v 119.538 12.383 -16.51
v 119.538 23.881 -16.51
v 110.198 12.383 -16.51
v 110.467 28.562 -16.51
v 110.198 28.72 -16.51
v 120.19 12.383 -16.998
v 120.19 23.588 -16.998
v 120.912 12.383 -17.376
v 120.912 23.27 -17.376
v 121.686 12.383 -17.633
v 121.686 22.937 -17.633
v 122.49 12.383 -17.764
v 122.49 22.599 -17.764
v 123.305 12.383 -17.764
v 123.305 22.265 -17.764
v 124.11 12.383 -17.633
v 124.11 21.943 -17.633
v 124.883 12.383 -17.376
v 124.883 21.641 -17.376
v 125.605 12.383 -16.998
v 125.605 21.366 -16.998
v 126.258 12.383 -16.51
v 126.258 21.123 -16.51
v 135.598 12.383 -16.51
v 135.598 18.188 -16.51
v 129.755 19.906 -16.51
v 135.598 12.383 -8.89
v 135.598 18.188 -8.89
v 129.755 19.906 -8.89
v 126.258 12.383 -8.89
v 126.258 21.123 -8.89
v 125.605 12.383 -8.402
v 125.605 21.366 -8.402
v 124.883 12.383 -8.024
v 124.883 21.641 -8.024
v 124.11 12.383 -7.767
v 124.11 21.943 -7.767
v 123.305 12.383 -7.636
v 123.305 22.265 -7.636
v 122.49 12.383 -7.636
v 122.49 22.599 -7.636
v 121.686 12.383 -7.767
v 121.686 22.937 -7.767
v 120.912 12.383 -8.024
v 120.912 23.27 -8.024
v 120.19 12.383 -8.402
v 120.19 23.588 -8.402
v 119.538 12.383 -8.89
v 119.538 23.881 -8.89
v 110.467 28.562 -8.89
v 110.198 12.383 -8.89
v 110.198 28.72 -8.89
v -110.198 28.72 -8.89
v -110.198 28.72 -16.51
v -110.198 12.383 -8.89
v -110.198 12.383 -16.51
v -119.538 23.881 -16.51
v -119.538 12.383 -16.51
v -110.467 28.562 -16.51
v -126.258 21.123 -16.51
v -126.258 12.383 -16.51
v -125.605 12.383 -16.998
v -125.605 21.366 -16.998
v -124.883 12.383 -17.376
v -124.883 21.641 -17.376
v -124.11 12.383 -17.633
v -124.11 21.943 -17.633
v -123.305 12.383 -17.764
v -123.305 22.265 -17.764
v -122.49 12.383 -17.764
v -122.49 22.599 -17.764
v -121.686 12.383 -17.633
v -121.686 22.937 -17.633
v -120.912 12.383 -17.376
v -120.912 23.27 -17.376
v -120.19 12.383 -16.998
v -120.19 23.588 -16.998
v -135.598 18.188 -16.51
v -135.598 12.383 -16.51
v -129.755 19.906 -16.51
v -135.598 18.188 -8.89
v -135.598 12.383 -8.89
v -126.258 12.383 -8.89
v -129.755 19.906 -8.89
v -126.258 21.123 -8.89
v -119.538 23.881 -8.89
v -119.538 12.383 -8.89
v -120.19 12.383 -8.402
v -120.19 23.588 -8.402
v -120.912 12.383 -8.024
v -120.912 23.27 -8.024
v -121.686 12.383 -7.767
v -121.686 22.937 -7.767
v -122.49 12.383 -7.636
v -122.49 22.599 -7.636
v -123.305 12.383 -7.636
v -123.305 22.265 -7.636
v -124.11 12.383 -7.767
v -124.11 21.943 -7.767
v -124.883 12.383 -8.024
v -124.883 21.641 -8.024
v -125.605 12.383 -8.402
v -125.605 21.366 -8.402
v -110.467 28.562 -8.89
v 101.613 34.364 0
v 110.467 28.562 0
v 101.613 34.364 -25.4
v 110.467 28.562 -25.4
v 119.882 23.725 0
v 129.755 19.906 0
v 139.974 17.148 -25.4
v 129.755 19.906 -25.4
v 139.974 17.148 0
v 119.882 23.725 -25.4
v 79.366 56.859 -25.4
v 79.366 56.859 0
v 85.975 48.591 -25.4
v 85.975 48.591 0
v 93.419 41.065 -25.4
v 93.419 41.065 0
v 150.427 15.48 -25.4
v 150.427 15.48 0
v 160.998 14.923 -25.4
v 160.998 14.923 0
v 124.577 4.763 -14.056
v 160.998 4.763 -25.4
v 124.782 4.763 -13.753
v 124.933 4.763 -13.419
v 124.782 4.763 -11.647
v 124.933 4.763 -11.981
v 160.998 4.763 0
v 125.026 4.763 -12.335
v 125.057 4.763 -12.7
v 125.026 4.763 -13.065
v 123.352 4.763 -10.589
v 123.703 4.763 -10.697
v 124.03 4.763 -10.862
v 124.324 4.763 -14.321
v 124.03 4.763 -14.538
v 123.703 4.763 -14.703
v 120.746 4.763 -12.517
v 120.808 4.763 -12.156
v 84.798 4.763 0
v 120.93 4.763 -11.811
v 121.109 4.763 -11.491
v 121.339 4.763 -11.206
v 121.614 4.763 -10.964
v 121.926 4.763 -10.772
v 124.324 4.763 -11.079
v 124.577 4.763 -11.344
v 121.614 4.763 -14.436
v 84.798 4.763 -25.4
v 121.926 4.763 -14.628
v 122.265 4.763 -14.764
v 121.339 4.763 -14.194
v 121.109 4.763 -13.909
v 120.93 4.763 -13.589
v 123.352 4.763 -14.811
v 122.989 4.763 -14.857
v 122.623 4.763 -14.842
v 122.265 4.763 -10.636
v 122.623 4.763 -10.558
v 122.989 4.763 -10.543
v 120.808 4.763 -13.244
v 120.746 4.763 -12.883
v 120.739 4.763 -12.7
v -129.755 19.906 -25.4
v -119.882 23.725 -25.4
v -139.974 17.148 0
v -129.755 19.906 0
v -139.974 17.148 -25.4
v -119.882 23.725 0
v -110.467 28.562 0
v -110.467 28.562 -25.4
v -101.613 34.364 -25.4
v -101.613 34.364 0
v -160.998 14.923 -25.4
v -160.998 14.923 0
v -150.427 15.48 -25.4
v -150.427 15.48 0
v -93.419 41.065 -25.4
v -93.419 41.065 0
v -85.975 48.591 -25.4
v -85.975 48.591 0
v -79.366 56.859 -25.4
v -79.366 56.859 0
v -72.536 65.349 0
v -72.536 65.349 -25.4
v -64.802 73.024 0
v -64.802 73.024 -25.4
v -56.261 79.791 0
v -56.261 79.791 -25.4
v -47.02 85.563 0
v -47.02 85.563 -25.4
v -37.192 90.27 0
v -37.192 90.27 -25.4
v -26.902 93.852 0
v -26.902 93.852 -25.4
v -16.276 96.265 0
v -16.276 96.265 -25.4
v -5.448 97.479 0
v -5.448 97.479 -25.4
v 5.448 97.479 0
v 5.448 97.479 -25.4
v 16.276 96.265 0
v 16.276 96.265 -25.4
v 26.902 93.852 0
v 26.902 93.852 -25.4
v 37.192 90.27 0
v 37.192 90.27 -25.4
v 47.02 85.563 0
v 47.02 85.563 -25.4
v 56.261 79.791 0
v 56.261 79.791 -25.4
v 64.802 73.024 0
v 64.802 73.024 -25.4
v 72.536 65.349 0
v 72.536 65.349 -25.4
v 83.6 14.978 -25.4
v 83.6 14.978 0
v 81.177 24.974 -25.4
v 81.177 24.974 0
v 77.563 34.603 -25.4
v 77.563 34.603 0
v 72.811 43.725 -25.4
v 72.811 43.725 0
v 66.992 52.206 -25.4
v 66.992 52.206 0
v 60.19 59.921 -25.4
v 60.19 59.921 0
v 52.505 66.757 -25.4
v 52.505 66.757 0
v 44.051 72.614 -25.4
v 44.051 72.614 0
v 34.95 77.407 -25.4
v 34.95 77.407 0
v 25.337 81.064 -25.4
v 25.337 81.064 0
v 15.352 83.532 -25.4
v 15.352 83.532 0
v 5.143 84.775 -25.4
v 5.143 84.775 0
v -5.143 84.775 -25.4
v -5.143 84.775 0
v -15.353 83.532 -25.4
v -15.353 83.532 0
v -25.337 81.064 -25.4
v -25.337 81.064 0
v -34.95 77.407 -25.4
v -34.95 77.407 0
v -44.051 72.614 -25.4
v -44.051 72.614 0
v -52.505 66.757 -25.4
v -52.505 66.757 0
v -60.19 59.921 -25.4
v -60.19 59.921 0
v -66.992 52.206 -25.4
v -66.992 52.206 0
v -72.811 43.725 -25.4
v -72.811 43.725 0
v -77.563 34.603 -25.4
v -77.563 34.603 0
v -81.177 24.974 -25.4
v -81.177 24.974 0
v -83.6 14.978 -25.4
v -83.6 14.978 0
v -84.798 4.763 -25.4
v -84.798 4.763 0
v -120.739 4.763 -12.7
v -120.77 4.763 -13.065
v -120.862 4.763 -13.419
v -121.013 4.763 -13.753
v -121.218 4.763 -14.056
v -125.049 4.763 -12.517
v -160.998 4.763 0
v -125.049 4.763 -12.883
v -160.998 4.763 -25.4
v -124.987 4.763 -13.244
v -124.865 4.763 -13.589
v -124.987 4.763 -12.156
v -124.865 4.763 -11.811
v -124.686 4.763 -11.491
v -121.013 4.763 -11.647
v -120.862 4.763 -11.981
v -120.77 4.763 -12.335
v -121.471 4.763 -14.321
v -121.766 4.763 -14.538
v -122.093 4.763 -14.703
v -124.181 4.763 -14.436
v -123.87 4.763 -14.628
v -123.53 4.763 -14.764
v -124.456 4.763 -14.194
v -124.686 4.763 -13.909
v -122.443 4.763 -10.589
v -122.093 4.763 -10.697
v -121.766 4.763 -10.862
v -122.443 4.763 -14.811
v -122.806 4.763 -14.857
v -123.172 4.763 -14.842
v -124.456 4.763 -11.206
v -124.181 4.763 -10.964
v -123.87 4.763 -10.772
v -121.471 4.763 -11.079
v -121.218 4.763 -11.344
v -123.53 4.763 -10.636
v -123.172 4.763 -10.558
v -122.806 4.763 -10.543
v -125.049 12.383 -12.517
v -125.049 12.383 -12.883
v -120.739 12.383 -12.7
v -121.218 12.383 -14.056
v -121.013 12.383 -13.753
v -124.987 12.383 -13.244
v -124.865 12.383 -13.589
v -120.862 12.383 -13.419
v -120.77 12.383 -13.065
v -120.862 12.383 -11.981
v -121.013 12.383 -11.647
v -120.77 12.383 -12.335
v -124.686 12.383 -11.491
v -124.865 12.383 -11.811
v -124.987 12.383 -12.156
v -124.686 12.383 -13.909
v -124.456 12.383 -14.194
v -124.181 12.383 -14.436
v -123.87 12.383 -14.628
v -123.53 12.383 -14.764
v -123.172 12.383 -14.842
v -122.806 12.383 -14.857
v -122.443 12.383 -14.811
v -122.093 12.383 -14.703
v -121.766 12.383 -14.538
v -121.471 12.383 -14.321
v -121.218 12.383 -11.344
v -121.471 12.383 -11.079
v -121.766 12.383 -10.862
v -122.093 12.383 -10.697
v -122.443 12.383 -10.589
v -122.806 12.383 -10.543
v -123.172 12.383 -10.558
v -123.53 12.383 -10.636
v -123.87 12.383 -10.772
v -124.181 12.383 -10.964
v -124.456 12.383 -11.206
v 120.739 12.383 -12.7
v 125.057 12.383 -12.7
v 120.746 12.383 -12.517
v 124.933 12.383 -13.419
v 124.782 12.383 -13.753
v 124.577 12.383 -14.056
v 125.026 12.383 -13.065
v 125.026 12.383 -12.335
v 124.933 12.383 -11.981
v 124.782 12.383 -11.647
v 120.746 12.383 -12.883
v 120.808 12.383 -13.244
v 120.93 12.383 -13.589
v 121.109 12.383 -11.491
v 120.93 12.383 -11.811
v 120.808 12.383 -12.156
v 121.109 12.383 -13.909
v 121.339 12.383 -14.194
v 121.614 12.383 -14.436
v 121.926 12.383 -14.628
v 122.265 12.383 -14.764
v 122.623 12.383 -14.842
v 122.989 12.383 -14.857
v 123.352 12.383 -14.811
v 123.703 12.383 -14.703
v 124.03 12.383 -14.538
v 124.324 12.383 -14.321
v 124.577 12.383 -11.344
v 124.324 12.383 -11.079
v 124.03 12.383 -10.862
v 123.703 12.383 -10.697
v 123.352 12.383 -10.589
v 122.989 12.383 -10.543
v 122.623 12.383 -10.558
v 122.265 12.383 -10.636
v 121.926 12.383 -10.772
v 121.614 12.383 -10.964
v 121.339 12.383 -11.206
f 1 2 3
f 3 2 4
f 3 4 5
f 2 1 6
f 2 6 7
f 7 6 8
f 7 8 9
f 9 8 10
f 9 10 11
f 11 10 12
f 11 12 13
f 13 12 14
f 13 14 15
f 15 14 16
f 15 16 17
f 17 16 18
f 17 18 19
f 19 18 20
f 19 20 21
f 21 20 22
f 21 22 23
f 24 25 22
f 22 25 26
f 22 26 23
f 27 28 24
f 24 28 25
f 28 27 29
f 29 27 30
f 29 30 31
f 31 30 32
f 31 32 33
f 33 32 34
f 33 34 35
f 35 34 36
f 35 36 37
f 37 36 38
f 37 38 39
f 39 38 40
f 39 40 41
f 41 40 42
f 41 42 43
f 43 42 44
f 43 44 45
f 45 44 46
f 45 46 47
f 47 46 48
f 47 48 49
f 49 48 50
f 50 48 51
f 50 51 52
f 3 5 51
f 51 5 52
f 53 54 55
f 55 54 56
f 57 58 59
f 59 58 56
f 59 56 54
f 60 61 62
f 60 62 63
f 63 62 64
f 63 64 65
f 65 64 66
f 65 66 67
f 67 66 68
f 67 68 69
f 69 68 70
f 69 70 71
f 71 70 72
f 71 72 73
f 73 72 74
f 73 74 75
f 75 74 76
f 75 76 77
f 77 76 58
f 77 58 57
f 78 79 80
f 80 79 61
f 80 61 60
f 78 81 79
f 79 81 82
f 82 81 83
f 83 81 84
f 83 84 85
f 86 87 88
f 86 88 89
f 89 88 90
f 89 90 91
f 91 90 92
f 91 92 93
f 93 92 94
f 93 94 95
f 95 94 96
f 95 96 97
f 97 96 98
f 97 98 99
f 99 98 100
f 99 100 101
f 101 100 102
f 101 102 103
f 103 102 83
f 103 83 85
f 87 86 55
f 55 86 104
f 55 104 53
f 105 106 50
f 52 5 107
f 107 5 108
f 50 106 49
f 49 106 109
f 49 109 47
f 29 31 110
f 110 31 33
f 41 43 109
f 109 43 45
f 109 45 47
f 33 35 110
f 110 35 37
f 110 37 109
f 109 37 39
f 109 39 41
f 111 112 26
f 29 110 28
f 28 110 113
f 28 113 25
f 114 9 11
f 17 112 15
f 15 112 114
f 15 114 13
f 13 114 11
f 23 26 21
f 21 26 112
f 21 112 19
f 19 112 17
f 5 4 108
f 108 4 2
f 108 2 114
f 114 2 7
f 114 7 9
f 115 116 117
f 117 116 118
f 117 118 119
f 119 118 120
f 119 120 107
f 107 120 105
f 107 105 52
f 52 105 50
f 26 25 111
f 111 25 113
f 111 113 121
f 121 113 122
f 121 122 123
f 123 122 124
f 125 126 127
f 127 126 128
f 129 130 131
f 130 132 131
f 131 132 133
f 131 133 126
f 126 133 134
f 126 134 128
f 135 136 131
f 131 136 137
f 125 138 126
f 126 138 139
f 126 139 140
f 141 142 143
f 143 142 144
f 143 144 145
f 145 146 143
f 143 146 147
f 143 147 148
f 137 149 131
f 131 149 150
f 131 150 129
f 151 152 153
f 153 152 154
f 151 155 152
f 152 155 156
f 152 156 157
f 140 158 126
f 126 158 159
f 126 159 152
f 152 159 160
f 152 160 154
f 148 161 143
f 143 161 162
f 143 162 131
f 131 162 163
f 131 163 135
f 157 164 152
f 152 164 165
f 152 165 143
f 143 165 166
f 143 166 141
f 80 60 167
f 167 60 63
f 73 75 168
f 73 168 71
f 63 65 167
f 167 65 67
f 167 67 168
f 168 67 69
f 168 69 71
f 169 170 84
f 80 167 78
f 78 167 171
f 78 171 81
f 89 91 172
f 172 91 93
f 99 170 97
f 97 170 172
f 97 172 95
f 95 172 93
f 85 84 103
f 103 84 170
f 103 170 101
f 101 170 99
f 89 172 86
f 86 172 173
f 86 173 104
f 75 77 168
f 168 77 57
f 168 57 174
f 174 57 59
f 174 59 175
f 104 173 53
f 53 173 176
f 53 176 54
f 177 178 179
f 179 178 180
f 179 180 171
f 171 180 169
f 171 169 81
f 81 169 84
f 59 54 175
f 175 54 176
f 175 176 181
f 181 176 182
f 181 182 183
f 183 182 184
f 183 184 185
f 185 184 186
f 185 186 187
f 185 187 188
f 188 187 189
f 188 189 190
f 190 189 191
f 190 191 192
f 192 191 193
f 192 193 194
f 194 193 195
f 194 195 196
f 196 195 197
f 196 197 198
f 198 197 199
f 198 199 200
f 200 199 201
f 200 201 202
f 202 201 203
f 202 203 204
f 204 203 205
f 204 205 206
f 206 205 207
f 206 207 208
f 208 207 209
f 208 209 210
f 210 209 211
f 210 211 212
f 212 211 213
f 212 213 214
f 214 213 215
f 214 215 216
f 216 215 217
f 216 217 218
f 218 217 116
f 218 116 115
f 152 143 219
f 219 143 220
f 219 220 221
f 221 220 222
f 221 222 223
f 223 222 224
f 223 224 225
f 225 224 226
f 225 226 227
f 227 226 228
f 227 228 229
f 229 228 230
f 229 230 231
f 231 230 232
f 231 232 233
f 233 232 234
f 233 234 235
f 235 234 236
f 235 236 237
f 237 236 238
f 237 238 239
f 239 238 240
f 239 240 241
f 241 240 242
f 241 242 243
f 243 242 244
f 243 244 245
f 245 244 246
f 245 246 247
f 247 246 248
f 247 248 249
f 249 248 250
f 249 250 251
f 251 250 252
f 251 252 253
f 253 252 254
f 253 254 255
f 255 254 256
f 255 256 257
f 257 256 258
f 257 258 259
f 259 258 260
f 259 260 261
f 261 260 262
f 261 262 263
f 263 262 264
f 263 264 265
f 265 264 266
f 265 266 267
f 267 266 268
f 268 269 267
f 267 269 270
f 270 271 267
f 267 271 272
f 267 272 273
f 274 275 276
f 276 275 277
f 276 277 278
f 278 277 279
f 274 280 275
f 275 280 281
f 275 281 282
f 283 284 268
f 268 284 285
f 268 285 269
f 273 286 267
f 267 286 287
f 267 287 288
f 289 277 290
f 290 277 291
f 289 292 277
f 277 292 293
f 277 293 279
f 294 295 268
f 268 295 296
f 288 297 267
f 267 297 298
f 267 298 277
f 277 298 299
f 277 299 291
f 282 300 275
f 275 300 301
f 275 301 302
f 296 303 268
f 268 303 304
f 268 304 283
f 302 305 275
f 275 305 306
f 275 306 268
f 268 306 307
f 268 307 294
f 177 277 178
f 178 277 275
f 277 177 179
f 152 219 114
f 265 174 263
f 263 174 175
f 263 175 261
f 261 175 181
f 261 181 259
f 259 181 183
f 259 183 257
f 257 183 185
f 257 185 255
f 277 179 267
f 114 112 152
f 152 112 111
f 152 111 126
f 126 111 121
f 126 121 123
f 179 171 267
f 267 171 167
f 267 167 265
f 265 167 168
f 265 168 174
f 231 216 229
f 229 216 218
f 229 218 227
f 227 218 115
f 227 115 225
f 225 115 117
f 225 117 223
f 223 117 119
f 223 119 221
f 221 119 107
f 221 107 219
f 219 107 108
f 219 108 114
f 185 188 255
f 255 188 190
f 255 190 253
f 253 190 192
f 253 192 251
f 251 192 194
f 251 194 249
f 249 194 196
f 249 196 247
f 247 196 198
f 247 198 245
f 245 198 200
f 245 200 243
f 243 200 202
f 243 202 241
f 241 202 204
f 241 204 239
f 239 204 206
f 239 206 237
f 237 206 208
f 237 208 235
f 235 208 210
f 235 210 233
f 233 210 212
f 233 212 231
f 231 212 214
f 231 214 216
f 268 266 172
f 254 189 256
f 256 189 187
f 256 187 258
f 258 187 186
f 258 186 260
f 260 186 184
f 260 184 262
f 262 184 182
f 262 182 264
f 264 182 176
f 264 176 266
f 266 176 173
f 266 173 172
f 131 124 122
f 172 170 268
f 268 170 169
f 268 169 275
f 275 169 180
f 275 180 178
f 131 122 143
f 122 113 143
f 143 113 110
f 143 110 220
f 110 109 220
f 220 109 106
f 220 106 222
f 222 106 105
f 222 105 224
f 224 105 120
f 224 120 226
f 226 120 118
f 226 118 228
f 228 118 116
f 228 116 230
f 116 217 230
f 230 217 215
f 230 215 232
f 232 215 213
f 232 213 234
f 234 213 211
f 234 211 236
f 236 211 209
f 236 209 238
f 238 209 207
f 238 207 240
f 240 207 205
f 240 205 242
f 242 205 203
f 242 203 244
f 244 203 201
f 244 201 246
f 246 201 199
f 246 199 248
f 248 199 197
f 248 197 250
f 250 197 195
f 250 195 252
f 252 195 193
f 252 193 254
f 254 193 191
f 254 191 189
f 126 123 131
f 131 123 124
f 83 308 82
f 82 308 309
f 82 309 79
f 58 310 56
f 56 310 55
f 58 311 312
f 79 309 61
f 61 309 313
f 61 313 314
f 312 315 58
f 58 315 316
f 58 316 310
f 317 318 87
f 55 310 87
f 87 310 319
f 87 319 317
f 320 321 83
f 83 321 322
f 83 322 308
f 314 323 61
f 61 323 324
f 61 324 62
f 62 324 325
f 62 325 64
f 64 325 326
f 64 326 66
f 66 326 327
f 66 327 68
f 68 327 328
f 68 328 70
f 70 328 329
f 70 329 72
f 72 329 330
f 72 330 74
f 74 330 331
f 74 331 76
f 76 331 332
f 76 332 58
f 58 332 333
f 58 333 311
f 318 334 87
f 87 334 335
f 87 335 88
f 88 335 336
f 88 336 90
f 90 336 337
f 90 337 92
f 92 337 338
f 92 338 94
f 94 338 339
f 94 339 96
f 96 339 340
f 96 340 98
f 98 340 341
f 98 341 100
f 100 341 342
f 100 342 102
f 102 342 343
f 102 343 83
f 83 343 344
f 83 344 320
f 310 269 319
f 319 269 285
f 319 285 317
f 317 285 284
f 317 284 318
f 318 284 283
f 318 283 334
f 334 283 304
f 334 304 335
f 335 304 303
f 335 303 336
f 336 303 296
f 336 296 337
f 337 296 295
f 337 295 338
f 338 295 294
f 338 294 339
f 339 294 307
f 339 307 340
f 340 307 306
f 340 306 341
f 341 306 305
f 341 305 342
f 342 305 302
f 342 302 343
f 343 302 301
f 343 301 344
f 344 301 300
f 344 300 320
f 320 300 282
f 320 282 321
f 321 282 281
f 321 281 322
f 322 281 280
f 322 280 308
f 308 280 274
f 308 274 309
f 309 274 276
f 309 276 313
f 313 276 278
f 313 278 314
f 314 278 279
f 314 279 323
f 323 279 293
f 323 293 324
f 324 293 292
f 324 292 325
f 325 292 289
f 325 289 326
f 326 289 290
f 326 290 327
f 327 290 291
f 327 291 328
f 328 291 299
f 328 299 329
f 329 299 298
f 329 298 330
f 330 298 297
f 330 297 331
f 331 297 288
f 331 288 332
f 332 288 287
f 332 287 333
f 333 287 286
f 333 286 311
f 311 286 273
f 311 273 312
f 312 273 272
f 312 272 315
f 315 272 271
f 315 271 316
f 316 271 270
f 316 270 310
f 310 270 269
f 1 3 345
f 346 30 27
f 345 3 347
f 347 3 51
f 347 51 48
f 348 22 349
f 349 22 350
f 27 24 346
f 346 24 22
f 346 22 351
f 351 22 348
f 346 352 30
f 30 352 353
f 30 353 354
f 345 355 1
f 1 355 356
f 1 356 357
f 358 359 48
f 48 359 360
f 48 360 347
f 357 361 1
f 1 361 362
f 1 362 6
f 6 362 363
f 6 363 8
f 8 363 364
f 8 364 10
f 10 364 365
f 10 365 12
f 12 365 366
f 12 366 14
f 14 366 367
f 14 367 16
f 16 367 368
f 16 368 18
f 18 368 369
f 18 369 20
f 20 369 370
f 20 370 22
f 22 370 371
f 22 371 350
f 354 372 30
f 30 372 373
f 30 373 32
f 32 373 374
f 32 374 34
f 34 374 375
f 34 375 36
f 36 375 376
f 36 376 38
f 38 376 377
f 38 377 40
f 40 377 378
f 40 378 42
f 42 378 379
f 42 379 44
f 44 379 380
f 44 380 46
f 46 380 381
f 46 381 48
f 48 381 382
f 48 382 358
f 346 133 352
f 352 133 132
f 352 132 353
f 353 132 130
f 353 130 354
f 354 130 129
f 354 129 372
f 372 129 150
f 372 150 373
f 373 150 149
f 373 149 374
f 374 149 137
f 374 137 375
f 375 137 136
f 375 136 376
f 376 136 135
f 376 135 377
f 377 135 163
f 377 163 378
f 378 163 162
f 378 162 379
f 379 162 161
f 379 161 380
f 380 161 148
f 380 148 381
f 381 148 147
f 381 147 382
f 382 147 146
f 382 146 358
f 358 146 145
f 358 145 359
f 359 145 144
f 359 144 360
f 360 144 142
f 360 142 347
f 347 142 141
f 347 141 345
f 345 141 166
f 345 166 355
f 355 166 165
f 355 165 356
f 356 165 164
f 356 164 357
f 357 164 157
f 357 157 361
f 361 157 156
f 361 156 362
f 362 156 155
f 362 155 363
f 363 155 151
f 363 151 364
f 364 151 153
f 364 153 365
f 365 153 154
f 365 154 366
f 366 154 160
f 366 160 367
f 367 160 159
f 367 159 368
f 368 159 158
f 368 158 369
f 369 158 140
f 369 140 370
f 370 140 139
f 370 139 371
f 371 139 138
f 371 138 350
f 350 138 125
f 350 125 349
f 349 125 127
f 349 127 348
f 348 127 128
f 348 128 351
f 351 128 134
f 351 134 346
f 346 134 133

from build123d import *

# Parameters (mm, degrees)
BOSS_EXTRUDE1_DEPTH = 25.4
CUT_EXTRUDE2_DEPTH  = 23.957211
SKETCH4_R           = 2.159
BOSS_EXTRUDE2_DEPTH = 7.62


with BuildPart() as part:
    # Sketch1 → Boss-Extrude1 (new body)
    with BuildSketch(Plane.XY):
        with BuildLine():
            ThreePointArc((-160.997616832, 14.9225), (-115.11071, 26.01979846), (-79.36572698, 56.858969015))
            ThreePointArc((-79.36572698, 56.858969015), (-44.613051666, 86.842020921), (0, 97.63125))
            Line((0, 97.63125), (0, 84.93125))
            ThreePointArc((0, 84.93125), (-58.347374184, 61.716295679), (-84.797616832, 4.7625))
            Line((-84.797616832, 4.7625), (-160.997616832, 4.7625))
            Line((-160.997616832, 4.7625), (-160.997616832, 14.9225))
        make_face()
    boss_extrude1 = extrude(amount=-BOSS_EXTRUDE1_DEPTH)

    # Sketch3 → Cut-Extrude2 (cut)
    with BuildSketch(Plane.XZ.offset(-4.7625)):
        with BuildLine():
            Line((-119.537512667, -16.51), (-110.197616832, -16.51))
            Line((-110.197616832, -16.51), (-110.197616832, -8.89))
            Line((-110.197616832, -8.89), (-119.537512667, -8.89))
            ThreePointArc((-119.537512667, -8.89), (-122.897616832, -7.62), (-126.257720997, -8.89))
            Line((-126.257720997, -8.89), (-135.597616832, -8.89))
            Line((-135.597616832, -8.89), (-135.597616832, -16.51))
            Line((-135.597616832, -16.51), (-126.257720997, -16.51))
            ThreePointArc((-126.257720997, -16.51), (-122.897616832, -17.78), (-119.537512667, -16.51))
        make_face()
    cut_extrude2 = extrude(amount=-CUT_EXTRUDE2_DEPTH, mode=Mode.SUBTRACT)

    # Mirror2: Boss-Extrude1, Cut-Extrude2 across plane
    add(boss_extrude1.mirror(Plane(origin=(0, 0, -25.4), x_dir=(0, 0, 1), z_dir=(-1, 0, 0))))
    add(cut_extrude2.mirror(Plane(origin=(0, 0, -25.4), x_dir=(0, 0, 1), z_dir=(-1, 0, 0))), mode=Mode.SUBTRACT)

    # Sketch4 → Boss-Extrude2 (add)
    with BuildSketch(Plane.XZ.offset(-4.7625)):
        with BuildLine():
            Line((-110.197616832, -8.89), (-119.537512667, -8.89))
            ThreePointArc((-119.537512667, -8.89), (-122.897616832, -7.62), (-126.257720997, -8.89))
            Line((-126.257720997, -8.89), (-135.597616832, -8.89))
            Line((-135.597616832, -8.89), (-135.597616832, -16.51))
            Line((-135.597616832, -16.51), (-126.257720997, -16.51))
            ThreePointArc((-126.257720997, -16.51), (-122.897616832, -17.78), (-119.537512667, -16.51))
            Line((-119.537512667, -16.51), (-110.197616832, -16.51))
            Line((-110.197616832, -16.51), (-110.197616832, -8.89))
        make_face()
        with Locations((-122.897616832, -12.7)):
            Circle(SKETCH4_R, mode=Mode.SUBTRACT)
    boss_extrude2 = extrude(amount=-BOSS_EXTRUDE2_DEPTH)

    # Mirror3: Boss-Extrude2 across plane
    add(boss_extrude2.mirror(Plane(origin=(0, 0, 0), x_dir=(0, 0, 1), z_dir=(1, 0, 0))))


solid = part.part
